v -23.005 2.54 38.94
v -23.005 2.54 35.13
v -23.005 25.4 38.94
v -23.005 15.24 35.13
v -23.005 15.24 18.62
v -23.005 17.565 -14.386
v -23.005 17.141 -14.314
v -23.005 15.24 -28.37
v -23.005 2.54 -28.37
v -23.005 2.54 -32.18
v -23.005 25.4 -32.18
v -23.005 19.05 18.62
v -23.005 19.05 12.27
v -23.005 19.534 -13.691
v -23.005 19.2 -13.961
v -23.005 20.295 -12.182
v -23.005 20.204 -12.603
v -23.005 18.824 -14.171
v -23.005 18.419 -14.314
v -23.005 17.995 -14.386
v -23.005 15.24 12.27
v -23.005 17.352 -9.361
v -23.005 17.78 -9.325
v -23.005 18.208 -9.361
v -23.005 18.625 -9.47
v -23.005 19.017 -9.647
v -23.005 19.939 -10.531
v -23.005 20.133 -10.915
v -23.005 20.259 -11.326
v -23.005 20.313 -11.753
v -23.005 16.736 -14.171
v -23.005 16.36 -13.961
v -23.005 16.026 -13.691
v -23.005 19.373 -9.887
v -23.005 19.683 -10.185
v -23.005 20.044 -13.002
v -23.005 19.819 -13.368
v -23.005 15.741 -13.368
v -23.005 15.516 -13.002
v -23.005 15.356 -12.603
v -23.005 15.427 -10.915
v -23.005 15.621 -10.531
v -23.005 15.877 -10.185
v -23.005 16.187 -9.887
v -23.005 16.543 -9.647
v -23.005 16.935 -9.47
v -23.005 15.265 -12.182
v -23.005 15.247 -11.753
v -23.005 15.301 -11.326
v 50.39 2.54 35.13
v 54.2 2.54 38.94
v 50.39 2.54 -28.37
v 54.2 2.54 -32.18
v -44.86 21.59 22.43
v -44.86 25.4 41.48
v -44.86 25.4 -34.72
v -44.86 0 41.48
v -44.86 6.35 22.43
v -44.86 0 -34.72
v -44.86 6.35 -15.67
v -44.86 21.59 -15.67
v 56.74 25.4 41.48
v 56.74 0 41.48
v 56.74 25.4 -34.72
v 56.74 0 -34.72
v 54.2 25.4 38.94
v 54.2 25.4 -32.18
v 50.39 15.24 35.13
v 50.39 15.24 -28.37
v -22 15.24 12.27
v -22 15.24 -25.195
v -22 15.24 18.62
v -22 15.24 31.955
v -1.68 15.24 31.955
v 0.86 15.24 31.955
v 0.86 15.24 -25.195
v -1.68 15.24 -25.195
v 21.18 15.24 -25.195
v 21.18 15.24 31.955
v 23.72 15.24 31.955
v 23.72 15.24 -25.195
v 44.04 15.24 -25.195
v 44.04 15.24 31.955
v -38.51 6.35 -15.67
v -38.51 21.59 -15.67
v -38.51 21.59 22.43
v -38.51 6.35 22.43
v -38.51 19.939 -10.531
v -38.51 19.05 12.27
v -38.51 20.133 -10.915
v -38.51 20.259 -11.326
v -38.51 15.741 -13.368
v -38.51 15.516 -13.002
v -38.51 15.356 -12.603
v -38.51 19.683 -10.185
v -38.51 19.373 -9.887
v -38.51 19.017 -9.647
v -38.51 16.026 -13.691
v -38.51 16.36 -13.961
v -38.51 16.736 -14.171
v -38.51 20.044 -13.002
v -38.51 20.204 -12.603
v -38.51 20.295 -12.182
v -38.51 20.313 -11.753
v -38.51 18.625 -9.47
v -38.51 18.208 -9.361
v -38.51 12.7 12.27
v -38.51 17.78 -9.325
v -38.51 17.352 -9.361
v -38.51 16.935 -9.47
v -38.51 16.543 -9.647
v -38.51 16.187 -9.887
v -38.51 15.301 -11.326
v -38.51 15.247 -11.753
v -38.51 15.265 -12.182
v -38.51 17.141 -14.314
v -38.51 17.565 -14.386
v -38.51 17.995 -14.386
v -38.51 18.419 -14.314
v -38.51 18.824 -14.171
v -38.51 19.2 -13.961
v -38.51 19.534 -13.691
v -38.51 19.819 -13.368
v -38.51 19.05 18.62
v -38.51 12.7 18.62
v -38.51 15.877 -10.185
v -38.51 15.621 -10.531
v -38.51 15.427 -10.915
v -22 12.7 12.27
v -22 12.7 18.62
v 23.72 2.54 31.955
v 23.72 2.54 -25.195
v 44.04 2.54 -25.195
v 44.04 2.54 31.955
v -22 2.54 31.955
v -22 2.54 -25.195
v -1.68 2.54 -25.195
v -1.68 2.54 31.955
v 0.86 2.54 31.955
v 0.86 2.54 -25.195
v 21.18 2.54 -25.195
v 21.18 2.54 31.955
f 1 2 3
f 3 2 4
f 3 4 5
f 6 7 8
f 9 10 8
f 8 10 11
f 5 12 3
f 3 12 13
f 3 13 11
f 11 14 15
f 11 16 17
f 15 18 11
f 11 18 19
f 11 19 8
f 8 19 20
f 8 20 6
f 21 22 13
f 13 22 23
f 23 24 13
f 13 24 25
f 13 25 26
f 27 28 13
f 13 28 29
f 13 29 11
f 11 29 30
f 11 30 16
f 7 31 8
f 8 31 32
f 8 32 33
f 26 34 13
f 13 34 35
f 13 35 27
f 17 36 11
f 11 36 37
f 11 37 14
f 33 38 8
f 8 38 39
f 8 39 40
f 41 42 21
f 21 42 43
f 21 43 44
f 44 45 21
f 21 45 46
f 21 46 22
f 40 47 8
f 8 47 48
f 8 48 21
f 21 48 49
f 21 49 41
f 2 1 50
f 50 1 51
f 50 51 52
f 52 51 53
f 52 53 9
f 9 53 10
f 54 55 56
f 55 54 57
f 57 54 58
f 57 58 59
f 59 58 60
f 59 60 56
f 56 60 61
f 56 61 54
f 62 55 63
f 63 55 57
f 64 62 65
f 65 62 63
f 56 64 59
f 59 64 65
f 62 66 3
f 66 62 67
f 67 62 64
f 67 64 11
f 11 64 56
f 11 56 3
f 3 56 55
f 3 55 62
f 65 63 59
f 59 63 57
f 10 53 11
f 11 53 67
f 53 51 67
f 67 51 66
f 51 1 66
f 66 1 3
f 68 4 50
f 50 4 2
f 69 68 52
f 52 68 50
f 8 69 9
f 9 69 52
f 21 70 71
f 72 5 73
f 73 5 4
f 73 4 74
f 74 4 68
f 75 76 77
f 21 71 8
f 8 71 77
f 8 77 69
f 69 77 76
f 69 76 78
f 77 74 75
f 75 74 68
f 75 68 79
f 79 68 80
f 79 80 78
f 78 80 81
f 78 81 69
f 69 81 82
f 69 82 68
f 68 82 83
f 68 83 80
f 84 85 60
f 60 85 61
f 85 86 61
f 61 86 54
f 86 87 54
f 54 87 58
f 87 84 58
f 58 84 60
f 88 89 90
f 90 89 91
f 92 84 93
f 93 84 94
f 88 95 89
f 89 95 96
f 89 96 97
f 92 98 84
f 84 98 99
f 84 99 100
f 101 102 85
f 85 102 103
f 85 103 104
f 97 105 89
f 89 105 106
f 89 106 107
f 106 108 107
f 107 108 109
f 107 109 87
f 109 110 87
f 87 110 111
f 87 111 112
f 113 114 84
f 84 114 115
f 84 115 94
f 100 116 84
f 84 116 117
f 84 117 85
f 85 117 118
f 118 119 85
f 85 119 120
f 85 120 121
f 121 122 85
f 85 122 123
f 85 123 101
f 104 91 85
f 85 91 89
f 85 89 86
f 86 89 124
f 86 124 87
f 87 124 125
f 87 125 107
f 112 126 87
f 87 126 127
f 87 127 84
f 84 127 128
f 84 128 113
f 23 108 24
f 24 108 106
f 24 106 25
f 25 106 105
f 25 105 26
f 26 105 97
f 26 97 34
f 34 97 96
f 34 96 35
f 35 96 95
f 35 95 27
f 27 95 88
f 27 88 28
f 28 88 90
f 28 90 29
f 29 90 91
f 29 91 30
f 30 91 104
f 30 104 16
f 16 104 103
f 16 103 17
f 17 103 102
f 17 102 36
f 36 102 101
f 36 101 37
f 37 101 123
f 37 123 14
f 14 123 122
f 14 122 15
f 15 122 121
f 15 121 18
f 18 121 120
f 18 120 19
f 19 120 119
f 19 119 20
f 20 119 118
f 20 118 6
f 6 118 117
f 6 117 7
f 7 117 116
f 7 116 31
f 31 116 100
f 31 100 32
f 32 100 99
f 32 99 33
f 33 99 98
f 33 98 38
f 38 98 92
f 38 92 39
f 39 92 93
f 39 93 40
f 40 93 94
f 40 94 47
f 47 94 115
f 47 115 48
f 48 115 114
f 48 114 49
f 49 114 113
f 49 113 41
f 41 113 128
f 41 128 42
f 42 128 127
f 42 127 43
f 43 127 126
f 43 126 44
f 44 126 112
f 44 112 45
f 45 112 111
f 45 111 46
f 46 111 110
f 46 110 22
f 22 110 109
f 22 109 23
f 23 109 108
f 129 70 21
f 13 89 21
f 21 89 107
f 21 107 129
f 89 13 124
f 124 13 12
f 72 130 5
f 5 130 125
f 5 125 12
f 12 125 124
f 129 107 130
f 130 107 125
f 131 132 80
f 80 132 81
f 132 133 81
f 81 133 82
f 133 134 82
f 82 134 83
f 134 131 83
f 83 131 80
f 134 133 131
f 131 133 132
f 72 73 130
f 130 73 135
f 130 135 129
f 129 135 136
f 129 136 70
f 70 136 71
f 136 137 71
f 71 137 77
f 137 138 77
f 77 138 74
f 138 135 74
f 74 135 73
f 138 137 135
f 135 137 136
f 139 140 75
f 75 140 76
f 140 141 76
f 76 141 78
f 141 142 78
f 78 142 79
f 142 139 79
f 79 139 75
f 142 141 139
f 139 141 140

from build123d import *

# Parameters (mm, degrees)
SKETCH1_W           = 101.6
SKETCH1_H           = 76.2
BOSS_EXTRUDE1_DEPTH = 25.4
SKETCH2_W           = 77.204847721
SKETCH2_H           = 71.12
CUT_EXTRUDE1_DEPTH  = 22.86
SKETCH3_W           = 73.394847721
SKETCH3_H           = 63.5
BOSS_EXTRUDE3_DEPTH = 12.7
SKETCH4_W           = 38.1
SKETCH4_H           = 15.24
CUT_EXTRUDE2_DEPTH  = 6.35
SKETCH7_R           = 2.535464608
CUT_EXTRUDE3_DEPTH  = 22.86
SKETCH8_W           = 6.35
SKETCH8_H           = 6.35
CUT_EXTRUDE5_DEPTH  = 17.78
SKETCH9_W           = 20.32
SKETCH9_H           = 57.15
CUT_EXTRUDE6_DEPTH  = 12.7
LPATTERN1_COUNT     = 3
LPATTERN1_PITCH     = 22.86


with BuildPart() as part:
    # Sketch1 → Boss-Extrude1 (new body)
    with BuildSketch(Plane(origin=(0, 0, 0), x_dir=(1, 0, 0), z_dir=(0, 1, 0))):
        with Locations((5.940322581, -3.37983871)):
            Rectangle(SKETCH1_W, SKETCH1_H)
    extrude(amount=BOSS_EXTRUDE1_DEPTH)

    # Sketch2 → Cut-Extrude1 (cut)
    with BuildSketch(Plane(origin=(0, 25.4, 0), x_dir=(1, 0, 0), z_dir=(0, 1, 0))):
        with Locations((15.59789872, -3.37983871)):
            Rectangle(SKETCH2_W, SKETCH2_H)
    extrude(amount=-CUT_EXTRUDE1_DEPTH, mode=Mode.SUBTRACT)

    # Sketch3 → Boss-Extrude3 (add)
    with BuildSketch(Plane(origin=(0, 2.54, 0), x_dir=(1, 0, 0), z_dir=(0, 1, 0))):
        with Locations((13.692898721, -3.37983871)):
            Rectangle(SKETCH3_W, SKETCH3_H)
    extrude(amount=BOSS_EXTRUDE3_DEPTH)

    # Sketch4 → Cut-Extrude2 (cut)
    with BuildSketch(Plane.ZY.offset(44.859677419)):
        with Locations((3.37983871, 13.97)):
            Rectangle(SKETCH4_W, SKETCH4_H)
    extrude(amount=-CUT_EXTRUDE2_DEPTH, mode=Mode.SUBTRACT)

    # Sketch7 → Cut-Extrude3 (cut)
    with BuildSketch(Plane.ZY.offset(44.859677419)):
        with Locations((-11.86016129, 17.78)):
            Circle(SKETCH7_R)
    extrude(amount=-CUT_EXTRUDE3_DEPTH, mode=Mode.SUBTRACT)

    # Sketch8 → Cut-Extrude5 (cut)
    with BuildSketch(Plane.ZY.offset(38.509677419)):
        with Locations((15.44483871, 15.875)):
            Rectangle(SKETCH8_W, SKETCH8_H)
    extrude(amount=-CUT_EXTRUDE5_DEPTH, mode=Mode.SUBTRACT)

    # Sketch9 → Cut-Extrude6 (cut)
    with BuildSketch(Plane(origin=(0, 15.24, 0), x_dir=(1, 0, 0), z_dir=(0, 1, 0))):
        with Locations((33.880322581, -3.37983871)):
            Rectangle(SKETCH9_W, SKETCH9_H)
    cut_extrude6 = extrude(amount=-CUT_EXTRUDE6_DEPTH, mode=Mode.SUBTRACT)

    # LPattern1: Cut-Extrude6 ×3
    with Locations(*[(-i * LPATTERN1_PITCH, 0, 0) for i in range(1, LPATTERN1_COUNT)]):
        add(cut_extrude6, mode=Mode.SUBTRACT)


solid = part.part
